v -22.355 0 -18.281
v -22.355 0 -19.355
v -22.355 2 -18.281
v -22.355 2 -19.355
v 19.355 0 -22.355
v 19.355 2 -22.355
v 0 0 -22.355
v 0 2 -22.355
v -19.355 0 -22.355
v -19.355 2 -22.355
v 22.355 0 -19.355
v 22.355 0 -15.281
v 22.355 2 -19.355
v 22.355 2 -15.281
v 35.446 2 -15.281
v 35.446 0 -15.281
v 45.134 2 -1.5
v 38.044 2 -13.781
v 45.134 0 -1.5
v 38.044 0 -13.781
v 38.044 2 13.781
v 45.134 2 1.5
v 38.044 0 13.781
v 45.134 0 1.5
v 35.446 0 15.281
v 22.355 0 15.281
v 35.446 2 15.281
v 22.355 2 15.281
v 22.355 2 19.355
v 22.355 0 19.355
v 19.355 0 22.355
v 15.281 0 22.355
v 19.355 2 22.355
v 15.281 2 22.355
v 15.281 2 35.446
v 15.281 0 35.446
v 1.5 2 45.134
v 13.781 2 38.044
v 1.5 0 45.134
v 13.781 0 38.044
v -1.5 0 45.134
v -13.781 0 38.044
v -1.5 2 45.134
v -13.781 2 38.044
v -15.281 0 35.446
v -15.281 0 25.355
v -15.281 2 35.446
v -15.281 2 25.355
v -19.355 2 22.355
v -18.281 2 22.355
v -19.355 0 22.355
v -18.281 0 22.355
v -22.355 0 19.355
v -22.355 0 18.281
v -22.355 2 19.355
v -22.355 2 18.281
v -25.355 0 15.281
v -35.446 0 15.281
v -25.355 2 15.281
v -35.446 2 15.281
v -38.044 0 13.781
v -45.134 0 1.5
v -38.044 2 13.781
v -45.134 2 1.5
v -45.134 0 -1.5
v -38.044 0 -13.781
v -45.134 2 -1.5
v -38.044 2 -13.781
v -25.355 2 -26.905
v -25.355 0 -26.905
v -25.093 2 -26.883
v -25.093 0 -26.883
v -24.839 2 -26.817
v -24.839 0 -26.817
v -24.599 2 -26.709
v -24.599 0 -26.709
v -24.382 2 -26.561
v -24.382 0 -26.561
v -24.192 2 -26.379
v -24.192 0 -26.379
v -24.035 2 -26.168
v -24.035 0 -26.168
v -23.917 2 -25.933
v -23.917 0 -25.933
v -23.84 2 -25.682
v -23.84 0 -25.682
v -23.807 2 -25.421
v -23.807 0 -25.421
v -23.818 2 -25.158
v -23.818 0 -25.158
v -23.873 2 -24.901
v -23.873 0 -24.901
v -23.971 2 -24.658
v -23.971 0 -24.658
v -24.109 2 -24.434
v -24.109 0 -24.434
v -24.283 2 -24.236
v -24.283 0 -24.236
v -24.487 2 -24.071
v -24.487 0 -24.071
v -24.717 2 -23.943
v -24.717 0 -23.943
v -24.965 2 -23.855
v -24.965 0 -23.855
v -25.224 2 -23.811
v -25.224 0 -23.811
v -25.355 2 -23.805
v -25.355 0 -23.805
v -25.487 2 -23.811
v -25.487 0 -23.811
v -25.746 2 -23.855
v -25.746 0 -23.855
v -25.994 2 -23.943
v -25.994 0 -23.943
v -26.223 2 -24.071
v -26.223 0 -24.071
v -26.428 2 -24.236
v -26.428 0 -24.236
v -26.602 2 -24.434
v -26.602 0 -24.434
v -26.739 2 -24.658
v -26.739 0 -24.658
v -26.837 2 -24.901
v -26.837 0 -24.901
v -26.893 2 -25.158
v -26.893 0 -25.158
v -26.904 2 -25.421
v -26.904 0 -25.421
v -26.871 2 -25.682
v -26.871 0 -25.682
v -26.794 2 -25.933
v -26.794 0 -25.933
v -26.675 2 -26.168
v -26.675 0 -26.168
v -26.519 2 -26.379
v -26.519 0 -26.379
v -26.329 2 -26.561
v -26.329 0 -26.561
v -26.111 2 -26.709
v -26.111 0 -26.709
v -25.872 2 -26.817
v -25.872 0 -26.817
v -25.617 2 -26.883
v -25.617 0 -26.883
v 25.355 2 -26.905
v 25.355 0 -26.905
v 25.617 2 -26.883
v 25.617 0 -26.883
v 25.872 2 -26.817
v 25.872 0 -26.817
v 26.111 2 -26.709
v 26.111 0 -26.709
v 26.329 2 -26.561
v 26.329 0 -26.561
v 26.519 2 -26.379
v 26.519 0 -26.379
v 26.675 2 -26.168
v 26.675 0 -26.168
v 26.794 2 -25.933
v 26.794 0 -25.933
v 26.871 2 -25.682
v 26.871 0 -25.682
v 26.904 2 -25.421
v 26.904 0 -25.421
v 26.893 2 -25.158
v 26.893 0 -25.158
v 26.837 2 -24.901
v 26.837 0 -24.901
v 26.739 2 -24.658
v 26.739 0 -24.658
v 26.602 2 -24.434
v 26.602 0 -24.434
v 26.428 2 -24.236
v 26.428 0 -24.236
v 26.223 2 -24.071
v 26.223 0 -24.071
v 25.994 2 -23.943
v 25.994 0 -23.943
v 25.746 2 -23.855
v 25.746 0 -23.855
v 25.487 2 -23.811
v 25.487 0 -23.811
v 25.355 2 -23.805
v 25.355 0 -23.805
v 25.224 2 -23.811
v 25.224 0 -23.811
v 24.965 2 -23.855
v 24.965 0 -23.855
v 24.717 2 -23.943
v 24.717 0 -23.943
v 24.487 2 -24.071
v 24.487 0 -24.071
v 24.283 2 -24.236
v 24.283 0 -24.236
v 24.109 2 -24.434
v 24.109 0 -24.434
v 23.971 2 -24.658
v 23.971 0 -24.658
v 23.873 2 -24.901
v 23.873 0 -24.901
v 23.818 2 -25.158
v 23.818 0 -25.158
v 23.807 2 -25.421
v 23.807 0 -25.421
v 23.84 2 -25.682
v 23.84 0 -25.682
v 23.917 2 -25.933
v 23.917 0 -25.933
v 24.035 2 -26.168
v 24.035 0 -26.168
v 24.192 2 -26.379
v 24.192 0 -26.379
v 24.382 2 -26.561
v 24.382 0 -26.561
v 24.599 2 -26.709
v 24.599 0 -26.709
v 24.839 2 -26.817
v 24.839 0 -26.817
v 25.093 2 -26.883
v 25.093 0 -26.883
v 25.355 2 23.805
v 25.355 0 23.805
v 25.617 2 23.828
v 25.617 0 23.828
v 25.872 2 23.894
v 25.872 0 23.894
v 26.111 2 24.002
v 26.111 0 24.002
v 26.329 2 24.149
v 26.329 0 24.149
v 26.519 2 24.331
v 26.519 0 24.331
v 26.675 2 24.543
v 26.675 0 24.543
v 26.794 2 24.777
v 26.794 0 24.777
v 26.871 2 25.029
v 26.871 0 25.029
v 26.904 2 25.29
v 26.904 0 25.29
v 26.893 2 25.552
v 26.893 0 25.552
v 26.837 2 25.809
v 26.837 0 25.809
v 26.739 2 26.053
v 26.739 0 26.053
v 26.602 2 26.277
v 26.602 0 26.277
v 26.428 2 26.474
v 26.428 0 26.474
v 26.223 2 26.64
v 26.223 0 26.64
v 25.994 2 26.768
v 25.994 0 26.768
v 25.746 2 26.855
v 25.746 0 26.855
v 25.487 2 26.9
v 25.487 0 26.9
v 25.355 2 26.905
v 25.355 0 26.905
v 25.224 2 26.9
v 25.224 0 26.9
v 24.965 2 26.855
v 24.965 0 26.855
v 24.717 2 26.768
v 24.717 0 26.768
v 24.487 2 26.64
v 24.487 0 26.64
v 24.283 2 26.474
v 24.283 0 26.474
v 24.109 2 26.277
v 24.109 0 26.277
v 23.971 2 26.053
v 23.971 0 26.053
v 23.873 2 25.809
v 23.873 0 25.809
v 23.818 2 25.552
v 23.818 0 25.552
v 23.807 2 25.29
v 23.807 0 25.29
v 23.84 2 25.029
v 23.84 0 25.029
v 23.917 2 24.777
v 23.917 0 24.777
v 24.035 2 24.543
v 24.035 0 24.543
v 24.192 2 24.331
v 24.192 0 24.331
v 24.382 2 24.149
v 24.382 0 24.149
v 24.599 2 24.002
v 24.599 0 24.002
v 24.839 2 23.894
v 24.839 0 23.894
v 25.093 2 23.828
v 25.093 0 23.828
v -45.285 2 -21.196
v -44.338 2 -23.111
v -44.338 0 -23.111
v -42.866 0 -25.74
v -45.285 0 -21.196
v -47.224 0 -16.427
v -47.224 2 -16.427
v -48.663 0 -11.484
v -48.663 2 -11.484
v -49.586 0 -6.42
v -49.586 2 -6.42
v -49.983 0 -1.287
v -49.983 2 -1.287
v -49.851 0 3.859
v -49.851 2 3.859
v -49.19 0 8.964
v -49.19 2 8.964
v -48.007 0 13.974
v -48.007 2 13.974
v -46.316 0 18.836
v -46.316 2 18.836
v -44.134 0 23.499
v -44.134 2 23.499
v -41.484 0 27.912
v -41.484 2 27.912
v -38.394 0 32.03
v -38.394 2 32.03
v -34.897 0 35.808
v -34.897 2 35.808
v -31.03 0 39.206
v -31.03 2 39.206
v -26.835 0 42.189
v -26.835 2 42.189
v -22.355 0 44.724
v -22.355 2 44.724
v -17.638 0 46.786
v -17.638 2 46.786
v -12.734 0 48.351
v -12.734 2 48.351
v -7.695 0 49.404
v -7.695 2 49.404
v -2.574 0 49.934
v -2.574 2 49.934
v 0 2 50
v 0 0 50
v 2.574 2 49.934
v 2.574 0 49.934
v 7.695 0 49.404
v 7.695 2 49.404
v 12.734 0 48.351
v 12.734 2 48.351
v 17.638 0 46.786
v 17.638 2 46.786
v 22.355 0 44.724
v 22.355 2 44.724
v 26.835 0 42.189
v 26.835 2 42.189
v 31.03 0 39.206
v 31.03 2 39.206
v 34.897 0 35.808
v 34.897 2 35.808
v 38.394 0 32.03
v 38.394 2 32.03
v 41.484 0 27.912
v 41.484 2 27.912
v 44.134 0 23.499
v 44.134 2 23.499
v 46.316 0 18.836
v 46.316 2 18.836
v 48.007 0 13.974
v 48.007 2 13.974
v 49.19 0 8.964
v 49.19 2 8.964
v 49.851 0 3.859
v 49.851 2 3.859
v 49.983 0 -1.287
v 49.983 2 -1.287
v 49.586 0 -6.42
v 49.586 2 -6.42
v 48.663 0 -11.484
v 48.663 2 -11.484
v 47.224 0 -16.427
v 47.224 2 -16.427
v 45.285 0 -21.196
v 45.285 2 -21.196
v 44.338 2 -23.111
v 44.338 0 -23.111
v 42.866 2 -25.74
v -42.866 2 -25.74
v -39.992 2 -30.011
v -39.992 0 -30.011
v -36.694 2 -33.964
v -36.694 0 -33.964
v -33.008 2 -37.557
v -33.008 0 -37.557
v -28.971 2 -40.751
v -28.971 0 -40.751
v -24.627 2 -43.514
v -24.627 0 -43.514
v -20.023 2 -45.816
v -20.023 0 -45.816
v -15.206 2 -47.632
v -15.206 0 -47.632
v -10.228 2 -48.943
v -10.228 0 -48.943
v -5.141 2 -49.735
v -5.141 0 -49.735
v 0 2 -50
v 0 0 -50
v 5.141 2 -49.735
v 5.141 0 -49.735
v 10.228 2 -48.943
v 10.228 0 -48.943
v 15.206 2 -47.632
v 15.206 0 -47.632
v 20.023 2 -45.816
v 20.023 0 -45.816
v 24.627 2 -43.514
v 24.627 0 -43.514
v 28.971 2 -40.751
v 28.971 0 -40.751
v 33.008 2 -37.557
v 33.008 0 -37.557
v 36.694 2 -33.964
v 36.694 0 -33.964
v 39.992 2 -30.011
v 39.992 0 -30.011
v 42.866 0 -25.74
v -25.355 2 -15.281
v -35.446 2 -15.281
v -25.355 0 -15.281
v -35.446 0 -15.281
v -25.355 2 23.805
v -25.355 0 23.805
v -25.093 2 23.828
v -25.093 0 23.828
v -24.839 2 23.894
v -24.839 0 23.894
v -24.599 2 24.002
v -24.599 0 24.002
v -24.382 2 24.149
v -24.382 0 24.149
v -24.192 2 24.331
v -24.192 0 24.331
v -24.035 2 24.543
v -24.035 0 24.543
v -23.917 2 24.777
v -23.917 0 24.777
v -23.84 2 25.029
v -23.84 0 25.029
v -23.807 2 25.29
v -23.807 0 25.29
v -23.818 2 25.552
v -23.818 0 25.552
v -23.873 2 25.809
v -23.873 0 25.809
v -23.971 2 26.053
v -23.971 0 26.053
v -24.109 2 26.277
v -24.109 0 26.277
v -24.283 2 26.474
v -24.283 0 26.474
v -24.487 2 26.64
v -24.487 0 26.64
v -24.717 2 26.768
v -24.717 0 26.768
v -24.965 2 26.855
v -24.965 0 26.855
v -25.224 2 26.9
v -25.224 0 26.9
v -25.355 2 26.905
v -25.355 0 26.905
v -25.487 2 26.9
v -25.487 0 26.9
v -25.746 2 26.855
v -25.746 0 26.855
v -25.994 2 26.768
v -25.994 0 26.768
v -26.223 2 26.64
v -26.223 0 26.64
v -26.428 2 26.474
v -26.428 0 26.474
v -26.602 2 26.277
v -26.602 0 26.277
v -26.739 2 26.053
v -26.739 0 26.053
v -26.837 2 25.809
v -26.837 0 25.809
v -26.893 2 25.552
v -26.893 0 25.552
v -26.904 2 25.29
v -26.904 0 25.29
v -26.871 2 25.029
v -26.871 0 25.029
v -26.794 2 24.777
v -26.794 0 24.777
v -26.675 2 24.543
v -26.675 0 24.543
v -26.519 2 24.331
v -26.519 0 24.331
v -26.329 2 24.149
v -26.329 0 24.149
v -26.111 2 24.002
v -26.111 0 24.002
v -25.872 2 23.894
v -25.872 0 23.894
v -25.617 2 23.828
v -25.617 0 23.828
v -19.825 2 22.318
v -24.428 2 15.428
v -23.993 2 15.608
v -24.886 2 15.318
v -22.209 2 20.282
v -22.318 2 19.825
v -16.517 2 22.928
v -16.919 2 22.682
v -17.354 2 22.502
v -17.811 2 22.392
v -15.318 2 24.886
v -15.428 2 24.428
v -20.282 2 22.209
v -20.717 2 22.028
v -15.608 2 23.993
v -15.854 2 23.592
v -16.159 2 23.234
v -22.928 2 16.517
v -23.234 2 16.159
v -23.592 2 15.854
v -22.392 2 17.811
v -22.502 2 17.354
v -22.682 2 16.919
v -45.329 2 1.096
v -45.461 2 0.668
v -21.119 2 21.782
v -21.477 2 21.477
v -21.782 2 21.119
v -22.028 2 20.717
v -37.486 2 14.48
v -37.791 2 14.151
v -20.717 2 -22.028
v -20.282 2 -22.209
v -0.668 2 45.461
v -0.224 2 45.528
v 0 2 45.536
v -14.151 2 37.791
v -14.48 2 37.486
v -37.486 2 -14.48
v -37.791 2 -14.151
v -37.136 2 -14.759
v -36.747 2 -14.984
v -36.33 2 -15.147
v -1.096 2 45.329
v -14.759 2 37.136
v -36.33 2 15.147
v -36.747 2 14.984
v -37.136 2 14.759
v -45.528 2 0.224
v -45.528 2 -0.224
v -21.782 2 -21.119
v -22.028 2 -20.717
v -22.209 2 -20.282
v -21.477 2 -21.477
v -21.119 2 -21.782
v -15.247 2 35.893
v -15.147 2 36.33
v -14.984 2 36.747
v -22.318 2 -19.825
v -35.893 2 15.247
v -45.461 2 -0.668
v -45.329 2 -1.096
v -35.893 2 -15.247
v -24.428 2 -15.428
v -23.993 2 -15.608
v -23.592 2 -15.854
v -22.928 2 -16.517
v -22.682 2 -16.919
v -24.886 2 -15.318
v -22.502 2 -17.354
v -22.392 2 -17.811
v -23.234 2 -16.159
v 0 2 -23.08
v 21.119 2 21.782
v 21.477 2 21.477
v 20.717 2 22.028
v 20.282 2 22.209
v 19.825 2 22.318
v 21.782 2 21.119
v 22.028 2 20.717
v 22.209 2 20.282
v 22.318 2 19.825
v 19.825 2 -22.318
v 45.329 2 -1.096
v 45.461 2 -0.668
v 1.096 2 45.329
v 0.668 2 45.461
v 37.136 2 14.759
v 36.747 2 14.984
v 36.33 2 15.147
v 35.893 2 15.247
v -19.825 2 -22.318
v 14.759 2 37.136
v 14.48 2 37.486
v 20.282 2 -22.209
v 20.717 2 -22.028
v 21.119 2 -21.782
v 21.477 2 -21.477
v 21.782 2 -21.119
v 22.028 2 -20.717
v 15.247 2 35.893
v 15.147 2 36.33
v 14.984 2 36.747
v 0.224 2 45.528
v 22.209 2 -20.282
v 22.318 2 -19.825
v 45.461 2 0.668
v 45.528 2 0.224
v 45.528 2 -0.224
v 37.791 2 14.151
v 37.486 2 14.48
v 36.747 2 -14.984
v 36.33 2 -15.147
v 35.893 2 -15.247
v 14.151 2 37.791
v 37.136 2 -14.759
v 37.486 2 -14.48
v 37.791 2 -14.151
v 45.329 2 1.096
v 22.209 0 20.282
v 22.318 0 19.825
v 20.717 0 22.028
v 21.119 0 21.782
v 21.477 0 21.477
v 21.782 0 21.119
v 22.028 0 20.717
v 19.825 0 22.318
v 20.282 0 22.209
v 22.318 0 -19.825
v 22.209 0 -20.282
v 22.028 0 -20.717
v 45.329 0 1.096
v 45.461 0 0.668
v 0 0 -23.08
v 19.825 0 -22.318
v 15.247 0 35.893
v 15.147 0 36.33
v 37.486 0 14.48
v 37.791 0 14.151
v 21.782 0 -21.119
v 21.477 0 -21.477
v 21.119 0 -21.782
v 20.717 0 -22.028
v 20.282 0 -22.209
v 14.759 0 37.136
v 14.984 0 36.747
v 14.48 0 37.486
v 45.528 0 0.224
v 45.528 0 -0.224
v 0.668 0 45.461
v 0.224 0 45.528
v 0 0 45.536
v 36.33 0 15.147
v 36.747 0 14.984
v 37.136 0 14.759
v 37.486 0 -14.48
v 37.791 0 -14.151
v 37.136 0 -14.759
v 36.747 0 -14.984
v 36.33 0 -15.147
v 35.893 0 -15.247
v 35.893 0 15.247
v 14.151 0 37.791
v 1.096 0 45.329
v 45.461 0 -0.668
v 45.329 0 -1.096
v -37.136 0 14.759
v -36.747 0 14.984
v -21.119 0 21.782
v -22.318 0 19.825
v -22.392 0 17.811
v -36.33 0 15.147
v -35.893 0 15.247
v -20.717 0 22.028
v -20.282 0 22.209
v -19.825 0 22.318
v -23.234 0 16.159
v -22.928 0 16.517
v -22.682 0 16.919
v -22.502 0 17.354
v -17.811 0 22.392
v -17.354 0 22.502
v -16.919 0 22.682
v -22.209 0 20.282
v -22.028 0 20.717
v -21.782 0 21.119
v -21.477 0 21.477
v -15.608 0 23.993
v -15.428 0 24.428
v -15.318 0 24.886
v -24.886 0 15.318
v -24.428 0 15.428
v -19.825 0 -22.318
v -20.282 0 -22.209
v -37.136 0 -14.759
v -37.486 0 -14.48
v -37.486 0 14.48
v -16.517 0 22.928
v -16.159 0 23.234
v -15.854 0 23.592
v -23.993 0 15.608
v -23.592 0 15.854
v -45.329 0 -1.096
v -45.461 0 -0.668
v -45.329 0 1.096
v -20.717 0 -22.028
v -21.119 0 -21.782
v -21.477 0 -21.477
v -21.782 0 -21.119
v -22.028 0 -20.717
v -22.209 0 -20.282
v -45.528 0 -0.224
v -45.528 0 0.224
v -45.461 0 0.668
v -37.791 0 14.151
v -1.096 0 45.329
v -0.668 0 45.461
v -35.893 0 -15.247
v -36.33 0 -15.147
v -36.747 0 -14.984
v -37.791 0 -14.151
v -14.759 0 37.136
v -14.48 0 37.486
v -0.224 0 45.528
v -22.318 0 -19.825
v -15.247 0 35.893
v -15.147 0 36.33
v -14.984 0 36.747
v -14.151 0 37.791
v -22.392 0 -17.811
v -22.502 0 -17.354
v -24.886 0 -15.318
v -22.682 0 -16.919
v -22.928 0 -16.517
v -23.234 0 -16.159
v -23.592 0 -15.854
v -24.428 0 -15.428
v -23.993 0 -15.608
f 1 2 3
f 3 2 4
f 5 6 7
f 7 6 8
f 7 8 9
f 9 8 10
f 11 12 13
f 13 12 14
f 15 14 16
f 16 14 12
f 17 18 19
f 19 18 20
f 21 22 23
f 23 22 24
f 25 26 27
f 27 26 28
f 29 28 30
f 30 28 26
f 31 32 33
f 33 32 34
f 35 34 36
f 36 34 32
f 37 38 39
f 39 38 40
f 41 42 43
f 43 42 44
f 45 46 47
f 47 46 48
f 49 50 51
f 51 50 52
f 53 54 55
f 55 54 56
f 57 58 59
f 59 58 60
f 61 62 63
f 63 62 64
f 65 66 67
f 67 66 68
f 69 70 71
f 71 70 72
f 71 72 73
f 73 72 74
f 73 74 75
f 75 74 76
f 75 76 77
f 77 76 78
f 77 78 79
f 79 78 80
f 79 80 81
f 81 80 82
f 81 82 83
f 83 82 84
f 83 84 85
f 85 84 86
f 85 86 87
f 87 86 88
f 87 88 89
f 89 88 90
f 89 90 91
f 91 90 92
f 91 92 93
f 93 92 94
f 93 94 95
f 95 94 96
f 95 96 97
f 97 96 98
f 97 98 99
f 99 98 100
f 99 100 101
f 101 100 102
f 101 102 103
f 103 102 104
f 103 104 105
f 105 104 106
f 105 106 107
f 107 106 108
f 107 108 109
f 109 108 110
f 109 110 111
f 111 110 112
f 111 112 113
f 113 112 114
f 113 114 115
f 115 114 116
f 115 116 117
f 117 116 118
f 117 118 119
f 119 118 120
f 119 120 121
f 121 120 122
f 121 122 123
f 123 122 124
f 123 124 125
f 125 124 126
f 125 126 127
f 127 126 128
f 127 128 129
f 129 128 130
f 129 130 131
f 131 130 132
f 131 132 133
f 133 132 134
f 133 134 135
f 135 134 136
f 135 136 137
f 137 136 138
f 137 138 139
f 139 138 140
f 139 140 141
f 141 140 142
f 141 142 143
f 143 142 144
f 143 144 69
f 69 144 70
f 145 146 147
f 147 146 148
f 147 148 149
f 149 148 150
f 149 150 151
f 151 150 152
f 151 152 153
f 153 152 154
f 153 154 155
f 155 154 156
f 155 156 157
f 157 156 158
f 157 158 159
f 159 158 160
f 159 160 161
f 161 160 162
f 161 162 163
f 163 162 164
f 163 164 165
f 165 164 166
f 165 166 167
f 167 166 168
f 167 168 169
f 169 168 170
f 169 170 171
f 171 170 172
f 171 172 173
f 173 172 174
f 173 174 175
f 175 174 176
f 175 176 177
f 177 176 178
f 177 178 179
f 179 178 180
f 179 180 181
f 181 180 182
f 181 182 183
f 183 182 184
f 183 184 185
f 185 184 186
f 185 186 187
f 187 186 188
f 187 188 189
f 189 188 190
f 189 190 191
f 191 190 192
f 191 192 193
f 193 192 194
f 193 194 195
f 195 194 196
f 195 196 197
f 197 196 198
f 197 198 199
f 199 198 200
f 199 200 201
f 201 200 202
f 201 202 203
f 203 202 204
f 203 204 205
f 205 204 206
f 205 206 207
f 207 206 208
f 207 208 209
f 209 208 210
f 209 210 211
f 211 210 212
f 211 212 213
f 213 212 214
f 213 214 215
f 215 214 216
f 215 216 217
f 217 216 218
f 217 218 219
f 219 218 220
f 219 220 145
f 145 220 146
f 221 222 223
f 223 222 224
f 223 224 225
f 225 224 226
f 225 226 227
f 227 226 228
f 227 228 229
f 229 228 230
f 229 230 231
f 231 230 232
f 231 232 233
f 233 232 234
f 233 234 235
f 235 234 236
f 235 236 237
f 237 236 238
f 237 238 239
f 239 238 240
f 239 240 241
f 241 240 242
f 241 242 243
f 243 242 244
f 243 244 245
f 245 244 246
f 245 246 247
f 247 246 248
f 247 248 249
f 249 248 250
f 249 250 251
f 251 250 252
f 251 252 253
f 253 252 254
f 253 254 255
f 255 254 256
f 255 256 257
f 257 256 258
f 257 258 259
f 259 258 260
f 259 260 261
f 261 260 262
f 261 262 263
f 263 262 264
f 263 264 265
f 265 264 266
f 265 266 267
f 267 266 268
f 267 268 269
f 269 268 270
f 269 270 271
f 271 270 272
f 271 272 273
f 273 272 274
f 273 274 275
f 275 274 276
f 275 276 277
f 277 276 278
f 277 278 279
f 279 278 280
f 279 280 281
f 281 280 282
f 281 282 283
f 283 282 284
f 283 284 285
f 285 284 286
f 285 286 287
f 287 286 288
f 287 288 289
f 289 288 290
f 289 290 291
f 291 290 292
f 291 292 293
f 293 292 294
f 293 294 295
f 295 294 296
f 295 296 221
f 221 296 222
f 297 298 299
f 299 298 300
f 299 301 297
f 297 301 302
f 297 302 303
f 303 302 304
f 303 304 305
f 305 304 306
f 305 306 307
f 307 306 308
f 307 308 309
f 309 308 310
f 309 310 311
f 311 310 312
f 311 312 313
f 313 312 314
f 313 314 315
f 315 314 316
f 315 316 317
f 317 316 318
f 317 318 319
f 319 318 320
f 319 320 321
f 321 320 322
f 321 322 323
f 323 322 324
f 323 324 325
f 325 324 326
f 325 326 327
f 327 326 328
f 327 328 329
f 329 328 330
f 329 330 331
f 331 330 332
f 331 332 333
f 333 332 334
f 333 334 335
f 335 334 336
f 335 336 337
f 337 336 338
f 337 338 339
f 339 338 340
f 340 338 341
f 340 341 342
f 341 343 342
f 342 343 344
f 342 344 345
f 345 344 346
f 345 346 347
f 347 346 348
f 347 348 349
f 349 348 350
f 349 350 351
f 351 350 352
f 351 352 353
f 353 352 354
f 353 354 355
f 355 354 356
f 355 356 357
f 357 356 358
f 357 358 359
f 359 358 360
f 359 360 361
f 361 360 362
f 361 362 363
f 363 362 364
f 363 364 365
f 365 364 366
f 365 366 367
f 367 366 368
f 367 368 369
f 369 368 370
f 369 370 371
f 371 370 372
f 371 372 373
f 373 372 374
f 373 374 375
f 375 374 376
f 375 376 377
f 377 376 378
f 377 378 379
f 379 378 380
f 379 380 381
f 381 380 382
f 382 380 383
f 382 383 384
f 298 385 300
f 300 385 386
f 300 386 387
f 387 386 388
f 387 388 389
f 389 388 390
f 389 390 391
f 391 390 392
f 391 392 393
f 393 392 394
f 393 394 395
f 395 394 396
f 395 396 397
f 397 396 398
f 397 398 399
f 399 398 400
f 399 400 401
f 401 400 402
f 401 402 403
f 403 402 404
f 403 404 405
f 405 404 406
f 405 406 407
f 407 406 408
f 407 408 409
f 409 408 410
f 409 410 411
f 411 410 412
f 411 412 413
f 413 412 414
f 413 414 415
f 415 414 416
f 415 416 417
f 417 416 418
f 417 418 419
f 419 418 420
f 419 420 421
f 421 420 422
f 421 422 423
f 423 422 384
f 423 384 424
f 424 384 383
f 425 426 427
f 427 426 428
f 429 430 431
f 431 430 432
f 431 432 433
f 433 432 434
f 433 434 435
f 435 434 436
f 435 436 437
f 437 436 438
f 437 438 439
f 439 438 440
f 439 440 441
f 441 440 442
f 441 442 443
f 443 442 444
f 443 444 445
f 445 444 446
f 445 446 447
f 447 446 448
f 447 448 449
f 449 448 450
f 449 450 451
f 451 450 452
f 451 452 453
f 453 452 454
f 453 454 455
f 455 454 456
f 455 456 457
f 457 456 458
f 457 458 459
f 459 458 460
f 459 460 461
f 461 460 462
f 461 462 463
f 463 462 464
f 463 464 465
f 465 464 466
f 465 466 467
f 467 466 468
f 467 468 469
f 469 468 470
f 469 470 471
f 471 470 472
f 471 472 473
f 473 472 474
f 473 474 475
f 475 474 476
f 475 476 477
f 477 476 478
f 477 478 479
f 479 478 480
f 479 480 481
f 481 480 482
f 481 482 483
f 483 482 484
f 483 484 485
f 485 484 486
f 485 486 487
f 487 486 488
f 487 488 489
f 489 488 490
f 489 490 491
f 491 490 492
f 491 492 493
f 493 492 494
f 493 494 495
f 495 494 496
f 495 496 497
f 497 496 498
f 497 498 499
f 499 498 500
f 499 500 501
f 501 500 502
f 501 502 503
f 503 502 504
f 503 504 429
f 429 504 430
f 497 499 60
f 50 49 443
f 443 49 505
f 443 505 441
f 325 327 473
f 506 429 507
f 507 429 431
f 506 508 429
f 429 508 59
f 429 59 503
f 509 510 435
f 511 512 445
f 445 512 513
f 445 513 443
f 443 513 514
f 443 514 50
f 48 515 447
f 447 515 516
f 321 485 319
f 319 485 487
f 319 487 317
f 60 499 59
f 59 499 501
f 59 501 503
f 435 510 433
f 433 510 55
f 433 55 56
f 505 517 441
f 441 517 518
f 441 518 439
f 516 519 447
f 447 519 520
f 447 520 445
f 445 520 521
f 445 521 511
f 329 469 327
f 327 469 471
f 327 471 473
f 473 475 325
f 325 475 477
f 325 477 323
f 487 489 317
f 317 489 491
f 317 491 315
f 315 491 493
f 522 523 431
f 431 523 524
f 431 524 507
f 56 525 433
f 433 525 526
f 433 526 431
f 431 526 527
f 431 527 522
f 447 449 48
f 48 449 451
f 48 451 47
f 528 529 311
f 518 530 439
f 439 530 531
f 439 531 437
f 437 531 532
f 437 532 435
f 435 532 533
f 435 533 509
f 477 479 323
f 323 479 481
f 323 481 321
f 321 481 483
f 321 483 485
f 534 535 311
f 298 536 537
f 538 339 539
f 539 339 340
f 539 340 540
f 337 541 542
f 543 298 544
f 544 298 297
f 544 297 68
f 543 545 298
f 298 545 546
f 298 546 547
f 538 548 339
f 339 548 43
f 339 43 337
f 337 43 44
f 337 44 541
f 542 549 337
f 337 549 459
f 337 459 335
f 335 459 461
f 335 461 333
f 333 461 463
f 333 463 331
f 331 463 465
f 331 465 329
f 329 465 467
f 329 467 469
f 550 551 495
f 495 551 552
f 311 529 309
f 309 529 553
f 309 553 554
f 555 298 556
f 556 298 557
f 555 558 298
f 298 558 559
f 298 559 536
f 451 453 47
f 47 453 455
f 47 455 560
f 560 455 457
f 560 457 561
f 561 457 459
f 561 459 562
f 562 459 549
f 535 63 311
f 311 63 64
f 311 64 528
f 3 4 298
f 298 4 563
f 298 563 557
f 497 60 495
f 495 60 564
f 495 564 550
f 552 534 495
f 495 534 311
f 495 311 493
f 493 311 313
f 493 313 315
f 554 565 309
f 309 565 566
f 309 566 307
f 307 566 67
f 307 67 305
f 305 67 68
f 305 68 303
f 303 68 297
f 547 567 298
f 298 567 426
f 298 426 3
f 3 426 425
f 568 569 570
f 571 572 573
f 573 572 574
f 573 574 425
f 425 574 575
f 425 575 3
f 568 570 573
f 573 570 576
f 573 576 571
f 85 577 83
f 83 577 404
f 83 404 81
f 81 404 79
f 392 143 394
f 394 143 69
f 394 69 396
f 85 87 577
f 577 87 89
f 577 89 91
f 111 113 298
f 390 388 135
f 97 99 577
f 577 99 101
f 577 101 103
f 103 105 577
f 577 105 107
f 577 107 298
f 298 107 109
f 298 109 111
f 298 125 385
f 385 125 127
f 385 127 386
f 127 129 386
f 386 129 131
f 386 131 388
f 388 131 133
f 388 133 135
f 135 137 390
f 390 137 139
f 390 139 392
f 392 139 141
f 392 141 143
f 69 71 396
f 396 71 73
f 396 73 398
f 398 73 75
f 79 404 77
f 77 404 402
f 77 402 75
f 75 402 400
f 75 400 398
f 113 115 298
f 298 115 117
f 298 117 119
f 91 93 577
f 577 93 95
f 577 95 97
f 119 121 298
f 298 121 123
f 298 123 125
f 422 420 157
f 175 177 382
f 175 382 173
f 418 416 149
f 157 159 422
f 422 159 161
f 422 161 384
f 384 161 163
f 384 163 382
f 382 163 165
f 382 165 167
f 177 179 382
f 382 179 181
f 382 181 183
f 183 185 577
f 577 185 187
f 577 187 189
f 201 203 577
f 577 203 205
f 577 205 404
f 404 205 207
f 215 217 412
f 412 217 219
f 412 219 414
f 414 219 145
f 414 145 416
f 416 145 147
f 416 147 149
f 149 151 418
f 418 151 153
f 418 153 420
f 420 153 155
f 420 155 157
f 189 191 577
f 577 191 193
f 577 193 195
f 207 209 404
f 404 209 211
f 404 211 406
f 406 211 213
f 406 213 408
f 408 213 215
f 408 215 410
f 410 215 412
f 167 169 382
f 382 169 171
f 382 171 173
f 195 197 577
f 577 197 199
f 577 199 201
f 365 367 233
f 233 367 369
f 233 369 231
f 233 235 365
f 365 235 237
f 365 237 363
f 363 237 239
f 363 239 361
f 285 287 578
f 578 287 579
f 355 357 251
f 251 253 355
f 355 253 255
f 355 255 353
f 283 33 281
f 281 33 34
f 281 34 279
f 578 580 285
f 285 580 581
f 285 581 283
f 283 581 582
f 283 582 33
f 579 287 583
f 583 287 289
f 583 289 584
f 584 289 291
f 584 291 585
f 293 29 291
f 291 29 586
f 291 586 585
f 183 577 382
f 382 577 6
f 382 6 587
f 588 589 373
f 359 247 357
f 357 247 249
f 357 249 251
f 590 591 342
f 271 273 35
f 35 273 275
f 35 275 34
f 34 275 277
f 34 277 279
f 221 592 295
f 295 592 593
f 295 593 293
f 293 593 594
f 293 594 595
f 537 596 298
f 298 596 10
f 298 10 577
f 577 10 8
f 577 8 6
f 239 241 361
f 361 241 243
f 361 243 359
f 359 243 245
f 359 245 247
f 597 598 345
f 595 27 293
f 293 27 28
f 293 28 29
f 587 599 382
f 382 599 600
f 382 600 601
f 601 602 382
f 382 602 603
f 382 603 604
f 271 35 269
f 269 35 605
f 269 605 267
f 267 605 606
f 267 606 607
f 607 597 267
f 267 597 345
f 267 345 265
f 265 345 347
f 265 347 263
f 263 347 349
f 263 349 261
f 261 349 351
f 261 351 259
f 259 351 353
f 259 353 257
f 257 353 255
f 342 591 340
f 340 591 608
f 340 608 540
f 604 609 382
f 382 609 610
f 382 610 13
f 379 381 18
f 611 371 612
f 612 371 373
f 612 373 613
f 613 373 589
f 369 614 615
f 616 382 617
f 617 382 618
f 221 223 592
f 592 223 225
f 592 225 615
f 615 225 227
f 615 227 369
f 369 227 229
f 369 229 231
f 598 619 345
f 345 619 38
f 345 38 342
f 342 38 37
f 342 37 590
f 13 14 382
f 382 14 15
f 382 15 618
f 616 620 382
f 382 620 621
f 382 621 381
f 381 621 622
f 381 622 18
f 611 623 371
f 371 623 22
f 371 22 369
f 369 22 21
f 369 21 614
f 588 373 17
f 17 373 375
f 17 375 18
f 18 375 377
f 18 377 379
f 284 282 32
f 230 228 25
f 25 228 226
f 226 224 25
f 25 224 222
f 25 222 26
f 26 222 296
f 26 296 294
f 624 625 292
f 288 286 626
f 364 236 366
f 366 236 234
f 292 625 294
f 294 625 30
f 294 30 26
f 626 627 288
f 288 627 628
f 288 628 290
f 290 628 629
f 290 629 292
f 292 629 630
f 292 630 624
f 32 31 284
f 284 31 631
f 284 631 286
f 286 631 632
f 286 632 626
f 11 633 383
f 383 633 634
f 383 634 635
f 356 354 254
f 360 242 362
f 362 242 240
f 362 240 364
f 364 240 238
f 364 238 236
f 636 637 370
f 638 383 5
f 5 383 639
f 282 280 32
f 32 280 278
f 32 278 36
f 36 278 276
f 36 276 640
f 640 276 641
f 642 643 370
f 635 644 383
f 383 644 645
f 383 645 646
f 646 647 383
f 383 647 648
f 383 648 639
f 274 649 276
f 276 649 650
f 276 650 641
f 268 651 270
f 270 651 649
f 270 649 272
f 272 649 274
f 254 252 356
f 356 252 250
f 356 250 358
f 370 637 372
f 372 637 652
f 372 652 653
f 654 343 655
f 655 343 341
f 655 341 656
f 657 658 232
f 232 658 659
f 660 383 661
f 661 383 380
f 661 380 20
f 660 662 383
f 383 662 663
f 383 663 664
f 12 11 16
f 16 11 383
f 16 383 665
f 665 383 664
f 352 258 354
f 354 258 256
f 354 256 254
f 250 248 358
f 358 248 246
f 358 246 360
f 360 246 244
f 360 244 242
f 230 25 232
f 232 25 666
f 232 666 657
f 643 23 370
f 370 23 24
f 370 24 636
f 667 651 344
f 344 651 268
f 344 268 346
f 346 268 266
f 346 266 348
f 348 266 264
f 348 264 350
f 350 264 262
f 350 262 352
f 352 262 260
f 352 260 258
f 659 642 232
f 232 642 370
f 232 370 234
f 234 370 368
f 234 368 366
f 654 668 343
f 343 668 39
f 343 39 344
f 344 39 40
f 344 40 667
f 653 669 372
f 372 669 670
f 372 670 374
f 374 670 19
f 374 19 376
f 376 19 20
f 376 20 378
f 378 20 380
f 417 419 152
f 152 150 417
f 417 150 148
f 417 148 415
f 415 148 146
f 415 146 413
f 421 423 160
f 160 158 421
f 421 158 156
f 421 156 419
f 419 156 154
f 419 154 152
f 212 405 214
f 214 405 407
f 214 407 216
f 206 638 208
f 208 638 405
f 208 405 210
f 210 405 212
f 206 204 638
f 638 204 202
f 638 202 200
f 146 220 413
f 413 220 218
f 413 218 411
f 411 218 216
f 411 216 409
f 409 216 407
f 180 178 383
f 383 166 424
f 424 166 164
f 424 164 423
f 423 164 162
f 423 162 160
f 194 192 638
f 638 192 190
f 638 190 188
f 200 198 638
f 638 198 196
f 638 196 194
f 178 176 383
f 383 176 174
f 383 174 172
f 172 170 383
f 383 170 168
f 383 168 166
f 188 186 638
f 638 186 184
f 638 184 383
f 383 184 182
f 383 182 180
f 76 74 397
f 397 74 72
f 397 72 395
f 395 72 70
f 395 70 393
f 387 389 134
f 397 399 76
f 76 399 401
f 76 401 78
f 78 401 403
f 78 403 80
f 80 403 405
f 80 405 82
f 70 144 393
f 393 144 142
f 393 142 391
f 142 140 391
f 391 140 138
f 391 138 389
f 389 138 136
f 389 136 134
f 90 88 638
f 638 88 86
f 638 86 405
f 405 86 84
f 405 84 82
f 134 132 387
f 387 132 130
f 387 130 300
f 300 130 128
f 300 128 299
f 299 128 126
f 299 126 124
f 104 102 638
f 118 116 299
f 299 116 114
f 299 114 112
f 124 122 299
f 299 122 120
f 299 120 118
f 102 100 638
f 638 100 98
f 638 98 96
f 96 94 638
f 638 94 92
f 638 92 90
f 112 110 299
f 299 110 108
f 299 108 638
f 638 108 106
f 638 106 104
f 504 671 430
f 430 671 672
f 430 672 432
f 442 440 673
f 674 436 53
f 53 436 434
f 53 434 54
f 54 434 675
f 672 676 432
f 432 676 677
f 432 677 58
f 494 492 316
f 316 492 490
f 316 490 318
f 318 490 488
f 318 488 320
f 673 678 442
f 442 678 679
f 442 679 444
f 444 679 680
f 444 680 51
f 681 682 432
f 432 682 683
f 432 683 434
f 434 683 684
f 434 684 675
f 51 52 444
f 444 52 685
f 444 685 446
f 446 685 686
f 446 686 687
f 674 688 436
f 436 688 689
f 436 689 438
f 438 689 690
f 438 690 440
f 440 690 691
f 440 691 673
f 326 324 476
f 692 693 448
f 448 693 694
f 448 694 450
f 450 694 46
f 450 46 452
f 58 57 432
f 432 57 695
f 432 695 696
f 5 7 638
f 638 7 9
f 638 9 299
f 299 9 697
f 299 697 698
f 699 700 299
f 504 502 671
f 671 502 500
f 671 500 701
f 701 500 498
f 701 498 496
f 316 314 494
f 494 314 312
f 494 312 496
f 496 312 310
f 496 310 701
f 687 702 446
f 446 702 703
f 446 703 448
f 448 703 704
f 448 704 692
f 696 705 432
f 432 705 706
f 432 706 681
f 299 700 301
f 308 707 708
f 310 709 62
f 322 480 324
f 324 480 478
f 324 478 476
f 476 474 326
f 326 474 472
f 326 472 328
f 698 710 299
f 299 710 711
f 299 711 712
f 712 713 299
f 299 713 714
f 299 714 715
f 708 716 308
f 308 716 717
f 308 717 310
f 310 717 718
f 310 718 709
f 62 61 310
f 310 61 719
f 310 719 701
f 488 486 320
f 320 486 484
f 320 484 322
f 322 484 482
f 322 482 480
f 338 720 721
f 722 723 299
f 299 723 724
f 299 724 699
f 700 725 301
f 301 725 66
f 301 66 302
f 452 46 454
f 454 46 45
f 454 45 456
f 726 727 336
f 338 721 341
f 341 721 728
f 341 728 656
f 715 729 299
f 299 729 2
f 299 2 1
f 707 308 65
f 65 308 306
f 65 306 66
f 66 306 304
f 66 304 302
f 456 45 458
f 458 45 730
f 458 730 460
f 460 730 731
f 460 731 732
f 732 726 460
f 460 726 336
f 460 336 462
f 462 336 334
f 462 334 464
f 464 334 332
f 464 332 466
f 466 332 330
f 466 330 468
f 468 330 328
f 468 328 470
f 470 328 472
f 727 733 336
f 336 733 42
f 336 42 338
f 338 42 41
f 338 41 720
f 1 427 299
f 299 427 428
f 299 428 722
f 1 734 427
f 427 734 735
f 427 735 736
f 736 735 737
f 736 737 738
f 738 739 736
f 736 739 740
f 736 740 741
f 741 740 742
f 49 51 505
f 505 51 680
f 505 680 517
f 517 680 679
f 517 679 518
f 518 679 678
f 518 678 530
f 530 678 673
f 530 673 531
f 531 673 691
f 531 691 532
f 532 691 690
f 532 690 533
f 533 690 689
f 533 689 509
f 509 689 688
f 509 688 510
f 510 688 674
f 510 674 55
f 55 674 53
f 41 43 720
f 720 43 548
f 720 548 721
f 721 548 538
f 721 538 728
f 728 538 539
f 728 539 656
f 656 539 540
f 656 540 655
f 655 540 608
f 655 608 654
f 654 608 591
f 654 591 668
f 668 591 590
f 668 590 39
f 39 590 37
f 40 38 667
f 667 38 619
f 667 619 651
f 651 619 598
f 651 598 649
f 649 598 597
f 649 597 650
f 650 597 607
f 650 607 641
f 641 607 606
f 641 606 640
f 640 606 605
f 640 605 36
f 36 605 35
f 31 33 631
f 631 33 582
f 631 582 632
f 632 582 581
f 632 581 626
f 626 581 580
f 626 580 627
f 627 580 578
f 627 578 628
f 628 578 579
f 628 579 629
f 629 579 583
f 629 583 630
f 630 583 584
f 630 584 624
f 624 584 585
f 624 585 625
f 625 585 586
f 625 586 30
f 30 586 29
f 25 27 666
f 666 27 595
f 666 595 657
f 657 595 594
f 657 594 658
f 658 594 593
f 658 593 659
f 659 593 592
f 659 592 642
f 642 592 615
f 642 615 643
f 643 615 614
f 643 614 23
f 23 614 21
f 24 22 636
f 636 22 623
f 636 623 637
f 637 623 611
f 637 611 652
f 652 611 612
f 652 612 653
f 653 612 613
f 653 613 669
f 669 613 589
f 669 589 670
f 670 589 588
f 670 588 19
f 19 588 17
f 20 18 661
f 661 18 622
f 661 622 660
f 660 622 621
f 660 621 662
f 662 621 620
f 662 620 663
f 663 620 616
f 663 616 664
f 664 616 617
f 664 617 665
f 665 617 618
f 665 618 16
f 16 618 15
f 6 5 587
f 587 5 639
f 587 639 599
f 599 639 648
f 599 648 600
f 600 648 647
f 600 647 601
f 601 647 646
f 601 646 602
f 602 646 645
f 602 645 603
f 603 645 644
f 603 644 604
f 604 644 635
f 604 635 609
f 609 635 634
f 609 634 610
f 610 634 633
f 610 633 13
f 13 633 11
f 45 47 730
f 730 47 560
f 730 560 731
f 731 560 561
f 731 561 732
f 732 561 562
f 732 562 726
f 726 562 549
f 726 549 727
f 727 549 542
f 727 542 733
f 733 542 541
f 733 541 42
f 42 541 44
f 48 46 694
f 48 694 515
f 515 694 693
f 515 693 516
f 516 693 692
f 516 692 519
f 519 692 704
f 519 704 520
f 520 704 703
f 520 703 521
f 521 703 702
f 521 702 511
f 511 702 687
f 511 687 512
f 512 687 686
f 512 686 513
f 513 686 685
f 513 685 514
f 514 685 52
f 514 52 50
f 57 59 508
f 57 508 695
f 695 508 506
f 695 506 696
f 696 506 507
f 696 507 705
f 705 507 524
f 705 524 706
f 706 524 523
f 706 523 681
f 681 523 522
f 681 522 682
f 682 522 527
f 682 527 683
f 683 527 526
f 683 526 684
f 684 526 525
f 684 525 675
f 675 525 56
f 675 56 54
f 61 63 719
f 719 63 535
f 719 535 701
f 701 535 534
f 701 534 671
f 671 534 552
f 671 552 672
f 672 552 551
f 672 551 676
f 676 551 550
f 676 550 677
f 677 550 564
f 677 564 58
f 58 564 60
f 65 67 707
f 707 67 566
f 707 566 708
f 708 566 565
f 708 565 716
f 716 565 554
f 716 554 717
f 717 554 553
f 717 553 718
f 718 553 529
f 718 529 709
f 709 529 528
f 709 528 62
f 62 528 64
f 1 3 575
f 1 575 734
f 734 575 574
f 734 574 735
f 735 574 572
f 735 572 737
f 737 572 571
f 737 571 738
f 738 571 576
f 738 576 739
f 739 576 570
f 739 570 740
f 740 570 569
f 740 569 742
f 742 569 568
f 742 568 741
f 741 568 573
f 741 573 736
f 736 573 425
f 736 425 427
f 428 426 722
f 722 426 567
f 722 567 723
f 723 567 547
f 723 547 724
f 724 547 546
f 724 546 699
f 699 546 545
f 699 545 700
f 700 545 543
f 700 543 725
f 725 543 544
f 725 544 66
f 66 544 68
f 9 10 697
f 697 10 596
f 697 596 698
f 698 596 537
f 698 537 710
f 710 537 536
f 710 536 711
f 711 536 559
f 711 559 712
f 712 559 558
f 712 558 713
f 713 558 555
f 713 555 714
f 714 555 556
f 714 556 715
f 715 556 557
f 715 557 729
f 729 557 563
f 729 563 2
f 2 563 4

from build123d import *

# Parameters (mm, degrees)
SKETCH1_R           = 50
SKETCH1_R_2         = 1.55
SKETCH1_W           = 30.561449232
SKETCH1_H           = 6
BOSS_EXTRUDE2_DEPTH = 2
FILLET1_R           = 3


with BuildPart() as part:
    # Sketch1 → Boss-Extrude2 (new body)
    # profile 1 of 7: a face of its own
    with BuildSketch(Plane(origin=(0, 0, 0), x_dir=(1, 0, 0), z_dir=(0, 1, 0))):
        with Locations(Location((0, 0, 0), (0, 0, 270))):
            Circle(SKETCH1_R)
        Polygon((-28.355339059, 15.280724616), (-28.355339059, 28.355339059), (-15.280724616, 28.355339059), (-15.280724616, 37.17766953), (0, 46), (15.280724616, 37.17766953), (15.280724616, 28.355339059), (28.355339059, 28.355339059), (28.355339059, 15.280724616), (37.17766953, 15.280724616), (46, 0), (37.17766953, -15.280724616), (28.355339059, -15.280724616), (28.355339059, -28.355339059), (15.280724616, -28.355339059), (15.280724616, -37.17766953), (0, -46), (-15.280724616, -37.17766953), (-15.280724616, -28.355339059), (-28.355339059, -28.355339059), (-28.355339059, -15.280724616), (-37.17766953, -15.280724616), (-46, 0), (-37.17766953, 15.280724616), align=None, mode=Mode.SUBTRACT)
    # profile 2 of 7: a face of its own
    with BuildSketch(Plane(origin=(0, 0, 0), x_dir=(1, 0, 0), z_dir=(0, 1, 0))):
        Polygon((28.355339059, -28.355339059), (28.355339059, -15.280724616), (22.355339059, -15.280724616), (22.355339059, -22.355339059), (15.280724616, -22.355339059), (15.280724616, -28.355339059), align=None)
        with Locations(Location((25.355339059, -25.355339059, 0), (0, 0, 270))):
            Circle(SKETCH1_R_2, mode=Mode.SUBTRACT)
    # profile 3 of 7: a face of its own
    with BuildSketch(Plane(origin=(0, 0, 0), x_dir=(1, 0, 0), z_dir=(0, 1, 0))):
        Polygon((-22.355339059, -15.280724616), (-28.355339059, -15.280724616), (-28.355339059, -28.355339059), (-15.280724616, -28.355339059), (-15.280724616, -22.355339059), (-22.355339059, -22.355339059), align=None)
        with Locations(Location((-25.355339059, -25.355339059, 0), (0, 0, 270))):
            Circle(SKETCH1_R_2, mode=Mode.SUBTRACT)
    # profile 4 of 7: a face of its own
    with BuildSketch(Plane(origin=(0, 0, 0), x_dir=(1, 0, 0), z_dir=(0, 1, 0))):
        Polygon((-15.280724616, 28.355339059), (-28.355339059, 28.355339059), (-28.355339059, 15.280724616), (-22.355339059, 15.280724616), (-22.355339059, 22.355339059), (-15.280724616, 22.355339059), align=None)
        with Locations(Location((-25.355339059, 25.355339059, 0), (0, 0, 270))):
            Circle(SKETCH1_R_2, mode=Mode.SUBTRACT)
    # profile 5 of 7: a face of its own
    with BuildSketch(Plane(origin=(0, 0, 0), x_dir=(1, 0, 0), z_dir=(0, 1, 0))):
        Polygon((28.355339059, 28.355339059), (15.280724616, 28.355339059), (15.280724616, 22.355339059), (22.355339059, 22.355339059), (22.355339059, 15.280724616), (28.355339059, 15.280724616), align=None)
        with Locations(Location((25.355339059, 25.355339059, 0), (0, 0, 270))):
            Circle(SKETCH1_R_2, mode=Mode.SUBTRACT)
    # profile 6 of 7: a face of its own
    with BuildSketch(Plane(origin=(0, 0, 0), x_dir=(1, 0, 0), z_dir=(0, 1, 0))):
        with Locations((0, 25.355339059)):
            Rectangle(SKETCH1_W, SKETCH1_H)
    # profile 7 of 7: a face of its own
    with BuildSketch(Plane(origin=(0, 0, 0), x_dir=(1, 0, 0), z_dir=(0, 1, 0))):
        Polygon((-15.280724616, 37.17766953), (-15.280724616, 28.355339059), (15.280724616, 28.355339059), (15.280724616, 37.17766953), (0, 46), align=None)
    extrude(amount=BOSS_EXTRUDE2_DEPTH)

    # Fillet1
    fillet1_edges = [part.edges().sort_by_distance(p)[0] for p in [
        (-22.355339059, 1, -15.280724616),
        (-37.17766953, 1, -15.280724616),
        (-46, 1, 0),
        (-37.17766953, 1, 15.280724616),
        (-22.355339059, 1, 15.280724616),
        (-22.355339059, 1, 22.355339059),
        (-15.280724616, 1, 22.355339059),
        (-15.280724616, 1, 37.17766953),
        (0, 1, 46),
        (15.280724616, 1, 37.17766953),
        (22.355339059, 1, 22.355339059),
        (37.17766953, 1, 15.280724616),
        (46, 1, 0),
        (37.17766953, 1, -15.280724616),
        (22.355339059, 1, -22.355339059),
        (-22.355339059, 1, -22.355339059),
    ]]
    fillet(fillet1_edges, radius=FILLET1_R)


solid = part.part
